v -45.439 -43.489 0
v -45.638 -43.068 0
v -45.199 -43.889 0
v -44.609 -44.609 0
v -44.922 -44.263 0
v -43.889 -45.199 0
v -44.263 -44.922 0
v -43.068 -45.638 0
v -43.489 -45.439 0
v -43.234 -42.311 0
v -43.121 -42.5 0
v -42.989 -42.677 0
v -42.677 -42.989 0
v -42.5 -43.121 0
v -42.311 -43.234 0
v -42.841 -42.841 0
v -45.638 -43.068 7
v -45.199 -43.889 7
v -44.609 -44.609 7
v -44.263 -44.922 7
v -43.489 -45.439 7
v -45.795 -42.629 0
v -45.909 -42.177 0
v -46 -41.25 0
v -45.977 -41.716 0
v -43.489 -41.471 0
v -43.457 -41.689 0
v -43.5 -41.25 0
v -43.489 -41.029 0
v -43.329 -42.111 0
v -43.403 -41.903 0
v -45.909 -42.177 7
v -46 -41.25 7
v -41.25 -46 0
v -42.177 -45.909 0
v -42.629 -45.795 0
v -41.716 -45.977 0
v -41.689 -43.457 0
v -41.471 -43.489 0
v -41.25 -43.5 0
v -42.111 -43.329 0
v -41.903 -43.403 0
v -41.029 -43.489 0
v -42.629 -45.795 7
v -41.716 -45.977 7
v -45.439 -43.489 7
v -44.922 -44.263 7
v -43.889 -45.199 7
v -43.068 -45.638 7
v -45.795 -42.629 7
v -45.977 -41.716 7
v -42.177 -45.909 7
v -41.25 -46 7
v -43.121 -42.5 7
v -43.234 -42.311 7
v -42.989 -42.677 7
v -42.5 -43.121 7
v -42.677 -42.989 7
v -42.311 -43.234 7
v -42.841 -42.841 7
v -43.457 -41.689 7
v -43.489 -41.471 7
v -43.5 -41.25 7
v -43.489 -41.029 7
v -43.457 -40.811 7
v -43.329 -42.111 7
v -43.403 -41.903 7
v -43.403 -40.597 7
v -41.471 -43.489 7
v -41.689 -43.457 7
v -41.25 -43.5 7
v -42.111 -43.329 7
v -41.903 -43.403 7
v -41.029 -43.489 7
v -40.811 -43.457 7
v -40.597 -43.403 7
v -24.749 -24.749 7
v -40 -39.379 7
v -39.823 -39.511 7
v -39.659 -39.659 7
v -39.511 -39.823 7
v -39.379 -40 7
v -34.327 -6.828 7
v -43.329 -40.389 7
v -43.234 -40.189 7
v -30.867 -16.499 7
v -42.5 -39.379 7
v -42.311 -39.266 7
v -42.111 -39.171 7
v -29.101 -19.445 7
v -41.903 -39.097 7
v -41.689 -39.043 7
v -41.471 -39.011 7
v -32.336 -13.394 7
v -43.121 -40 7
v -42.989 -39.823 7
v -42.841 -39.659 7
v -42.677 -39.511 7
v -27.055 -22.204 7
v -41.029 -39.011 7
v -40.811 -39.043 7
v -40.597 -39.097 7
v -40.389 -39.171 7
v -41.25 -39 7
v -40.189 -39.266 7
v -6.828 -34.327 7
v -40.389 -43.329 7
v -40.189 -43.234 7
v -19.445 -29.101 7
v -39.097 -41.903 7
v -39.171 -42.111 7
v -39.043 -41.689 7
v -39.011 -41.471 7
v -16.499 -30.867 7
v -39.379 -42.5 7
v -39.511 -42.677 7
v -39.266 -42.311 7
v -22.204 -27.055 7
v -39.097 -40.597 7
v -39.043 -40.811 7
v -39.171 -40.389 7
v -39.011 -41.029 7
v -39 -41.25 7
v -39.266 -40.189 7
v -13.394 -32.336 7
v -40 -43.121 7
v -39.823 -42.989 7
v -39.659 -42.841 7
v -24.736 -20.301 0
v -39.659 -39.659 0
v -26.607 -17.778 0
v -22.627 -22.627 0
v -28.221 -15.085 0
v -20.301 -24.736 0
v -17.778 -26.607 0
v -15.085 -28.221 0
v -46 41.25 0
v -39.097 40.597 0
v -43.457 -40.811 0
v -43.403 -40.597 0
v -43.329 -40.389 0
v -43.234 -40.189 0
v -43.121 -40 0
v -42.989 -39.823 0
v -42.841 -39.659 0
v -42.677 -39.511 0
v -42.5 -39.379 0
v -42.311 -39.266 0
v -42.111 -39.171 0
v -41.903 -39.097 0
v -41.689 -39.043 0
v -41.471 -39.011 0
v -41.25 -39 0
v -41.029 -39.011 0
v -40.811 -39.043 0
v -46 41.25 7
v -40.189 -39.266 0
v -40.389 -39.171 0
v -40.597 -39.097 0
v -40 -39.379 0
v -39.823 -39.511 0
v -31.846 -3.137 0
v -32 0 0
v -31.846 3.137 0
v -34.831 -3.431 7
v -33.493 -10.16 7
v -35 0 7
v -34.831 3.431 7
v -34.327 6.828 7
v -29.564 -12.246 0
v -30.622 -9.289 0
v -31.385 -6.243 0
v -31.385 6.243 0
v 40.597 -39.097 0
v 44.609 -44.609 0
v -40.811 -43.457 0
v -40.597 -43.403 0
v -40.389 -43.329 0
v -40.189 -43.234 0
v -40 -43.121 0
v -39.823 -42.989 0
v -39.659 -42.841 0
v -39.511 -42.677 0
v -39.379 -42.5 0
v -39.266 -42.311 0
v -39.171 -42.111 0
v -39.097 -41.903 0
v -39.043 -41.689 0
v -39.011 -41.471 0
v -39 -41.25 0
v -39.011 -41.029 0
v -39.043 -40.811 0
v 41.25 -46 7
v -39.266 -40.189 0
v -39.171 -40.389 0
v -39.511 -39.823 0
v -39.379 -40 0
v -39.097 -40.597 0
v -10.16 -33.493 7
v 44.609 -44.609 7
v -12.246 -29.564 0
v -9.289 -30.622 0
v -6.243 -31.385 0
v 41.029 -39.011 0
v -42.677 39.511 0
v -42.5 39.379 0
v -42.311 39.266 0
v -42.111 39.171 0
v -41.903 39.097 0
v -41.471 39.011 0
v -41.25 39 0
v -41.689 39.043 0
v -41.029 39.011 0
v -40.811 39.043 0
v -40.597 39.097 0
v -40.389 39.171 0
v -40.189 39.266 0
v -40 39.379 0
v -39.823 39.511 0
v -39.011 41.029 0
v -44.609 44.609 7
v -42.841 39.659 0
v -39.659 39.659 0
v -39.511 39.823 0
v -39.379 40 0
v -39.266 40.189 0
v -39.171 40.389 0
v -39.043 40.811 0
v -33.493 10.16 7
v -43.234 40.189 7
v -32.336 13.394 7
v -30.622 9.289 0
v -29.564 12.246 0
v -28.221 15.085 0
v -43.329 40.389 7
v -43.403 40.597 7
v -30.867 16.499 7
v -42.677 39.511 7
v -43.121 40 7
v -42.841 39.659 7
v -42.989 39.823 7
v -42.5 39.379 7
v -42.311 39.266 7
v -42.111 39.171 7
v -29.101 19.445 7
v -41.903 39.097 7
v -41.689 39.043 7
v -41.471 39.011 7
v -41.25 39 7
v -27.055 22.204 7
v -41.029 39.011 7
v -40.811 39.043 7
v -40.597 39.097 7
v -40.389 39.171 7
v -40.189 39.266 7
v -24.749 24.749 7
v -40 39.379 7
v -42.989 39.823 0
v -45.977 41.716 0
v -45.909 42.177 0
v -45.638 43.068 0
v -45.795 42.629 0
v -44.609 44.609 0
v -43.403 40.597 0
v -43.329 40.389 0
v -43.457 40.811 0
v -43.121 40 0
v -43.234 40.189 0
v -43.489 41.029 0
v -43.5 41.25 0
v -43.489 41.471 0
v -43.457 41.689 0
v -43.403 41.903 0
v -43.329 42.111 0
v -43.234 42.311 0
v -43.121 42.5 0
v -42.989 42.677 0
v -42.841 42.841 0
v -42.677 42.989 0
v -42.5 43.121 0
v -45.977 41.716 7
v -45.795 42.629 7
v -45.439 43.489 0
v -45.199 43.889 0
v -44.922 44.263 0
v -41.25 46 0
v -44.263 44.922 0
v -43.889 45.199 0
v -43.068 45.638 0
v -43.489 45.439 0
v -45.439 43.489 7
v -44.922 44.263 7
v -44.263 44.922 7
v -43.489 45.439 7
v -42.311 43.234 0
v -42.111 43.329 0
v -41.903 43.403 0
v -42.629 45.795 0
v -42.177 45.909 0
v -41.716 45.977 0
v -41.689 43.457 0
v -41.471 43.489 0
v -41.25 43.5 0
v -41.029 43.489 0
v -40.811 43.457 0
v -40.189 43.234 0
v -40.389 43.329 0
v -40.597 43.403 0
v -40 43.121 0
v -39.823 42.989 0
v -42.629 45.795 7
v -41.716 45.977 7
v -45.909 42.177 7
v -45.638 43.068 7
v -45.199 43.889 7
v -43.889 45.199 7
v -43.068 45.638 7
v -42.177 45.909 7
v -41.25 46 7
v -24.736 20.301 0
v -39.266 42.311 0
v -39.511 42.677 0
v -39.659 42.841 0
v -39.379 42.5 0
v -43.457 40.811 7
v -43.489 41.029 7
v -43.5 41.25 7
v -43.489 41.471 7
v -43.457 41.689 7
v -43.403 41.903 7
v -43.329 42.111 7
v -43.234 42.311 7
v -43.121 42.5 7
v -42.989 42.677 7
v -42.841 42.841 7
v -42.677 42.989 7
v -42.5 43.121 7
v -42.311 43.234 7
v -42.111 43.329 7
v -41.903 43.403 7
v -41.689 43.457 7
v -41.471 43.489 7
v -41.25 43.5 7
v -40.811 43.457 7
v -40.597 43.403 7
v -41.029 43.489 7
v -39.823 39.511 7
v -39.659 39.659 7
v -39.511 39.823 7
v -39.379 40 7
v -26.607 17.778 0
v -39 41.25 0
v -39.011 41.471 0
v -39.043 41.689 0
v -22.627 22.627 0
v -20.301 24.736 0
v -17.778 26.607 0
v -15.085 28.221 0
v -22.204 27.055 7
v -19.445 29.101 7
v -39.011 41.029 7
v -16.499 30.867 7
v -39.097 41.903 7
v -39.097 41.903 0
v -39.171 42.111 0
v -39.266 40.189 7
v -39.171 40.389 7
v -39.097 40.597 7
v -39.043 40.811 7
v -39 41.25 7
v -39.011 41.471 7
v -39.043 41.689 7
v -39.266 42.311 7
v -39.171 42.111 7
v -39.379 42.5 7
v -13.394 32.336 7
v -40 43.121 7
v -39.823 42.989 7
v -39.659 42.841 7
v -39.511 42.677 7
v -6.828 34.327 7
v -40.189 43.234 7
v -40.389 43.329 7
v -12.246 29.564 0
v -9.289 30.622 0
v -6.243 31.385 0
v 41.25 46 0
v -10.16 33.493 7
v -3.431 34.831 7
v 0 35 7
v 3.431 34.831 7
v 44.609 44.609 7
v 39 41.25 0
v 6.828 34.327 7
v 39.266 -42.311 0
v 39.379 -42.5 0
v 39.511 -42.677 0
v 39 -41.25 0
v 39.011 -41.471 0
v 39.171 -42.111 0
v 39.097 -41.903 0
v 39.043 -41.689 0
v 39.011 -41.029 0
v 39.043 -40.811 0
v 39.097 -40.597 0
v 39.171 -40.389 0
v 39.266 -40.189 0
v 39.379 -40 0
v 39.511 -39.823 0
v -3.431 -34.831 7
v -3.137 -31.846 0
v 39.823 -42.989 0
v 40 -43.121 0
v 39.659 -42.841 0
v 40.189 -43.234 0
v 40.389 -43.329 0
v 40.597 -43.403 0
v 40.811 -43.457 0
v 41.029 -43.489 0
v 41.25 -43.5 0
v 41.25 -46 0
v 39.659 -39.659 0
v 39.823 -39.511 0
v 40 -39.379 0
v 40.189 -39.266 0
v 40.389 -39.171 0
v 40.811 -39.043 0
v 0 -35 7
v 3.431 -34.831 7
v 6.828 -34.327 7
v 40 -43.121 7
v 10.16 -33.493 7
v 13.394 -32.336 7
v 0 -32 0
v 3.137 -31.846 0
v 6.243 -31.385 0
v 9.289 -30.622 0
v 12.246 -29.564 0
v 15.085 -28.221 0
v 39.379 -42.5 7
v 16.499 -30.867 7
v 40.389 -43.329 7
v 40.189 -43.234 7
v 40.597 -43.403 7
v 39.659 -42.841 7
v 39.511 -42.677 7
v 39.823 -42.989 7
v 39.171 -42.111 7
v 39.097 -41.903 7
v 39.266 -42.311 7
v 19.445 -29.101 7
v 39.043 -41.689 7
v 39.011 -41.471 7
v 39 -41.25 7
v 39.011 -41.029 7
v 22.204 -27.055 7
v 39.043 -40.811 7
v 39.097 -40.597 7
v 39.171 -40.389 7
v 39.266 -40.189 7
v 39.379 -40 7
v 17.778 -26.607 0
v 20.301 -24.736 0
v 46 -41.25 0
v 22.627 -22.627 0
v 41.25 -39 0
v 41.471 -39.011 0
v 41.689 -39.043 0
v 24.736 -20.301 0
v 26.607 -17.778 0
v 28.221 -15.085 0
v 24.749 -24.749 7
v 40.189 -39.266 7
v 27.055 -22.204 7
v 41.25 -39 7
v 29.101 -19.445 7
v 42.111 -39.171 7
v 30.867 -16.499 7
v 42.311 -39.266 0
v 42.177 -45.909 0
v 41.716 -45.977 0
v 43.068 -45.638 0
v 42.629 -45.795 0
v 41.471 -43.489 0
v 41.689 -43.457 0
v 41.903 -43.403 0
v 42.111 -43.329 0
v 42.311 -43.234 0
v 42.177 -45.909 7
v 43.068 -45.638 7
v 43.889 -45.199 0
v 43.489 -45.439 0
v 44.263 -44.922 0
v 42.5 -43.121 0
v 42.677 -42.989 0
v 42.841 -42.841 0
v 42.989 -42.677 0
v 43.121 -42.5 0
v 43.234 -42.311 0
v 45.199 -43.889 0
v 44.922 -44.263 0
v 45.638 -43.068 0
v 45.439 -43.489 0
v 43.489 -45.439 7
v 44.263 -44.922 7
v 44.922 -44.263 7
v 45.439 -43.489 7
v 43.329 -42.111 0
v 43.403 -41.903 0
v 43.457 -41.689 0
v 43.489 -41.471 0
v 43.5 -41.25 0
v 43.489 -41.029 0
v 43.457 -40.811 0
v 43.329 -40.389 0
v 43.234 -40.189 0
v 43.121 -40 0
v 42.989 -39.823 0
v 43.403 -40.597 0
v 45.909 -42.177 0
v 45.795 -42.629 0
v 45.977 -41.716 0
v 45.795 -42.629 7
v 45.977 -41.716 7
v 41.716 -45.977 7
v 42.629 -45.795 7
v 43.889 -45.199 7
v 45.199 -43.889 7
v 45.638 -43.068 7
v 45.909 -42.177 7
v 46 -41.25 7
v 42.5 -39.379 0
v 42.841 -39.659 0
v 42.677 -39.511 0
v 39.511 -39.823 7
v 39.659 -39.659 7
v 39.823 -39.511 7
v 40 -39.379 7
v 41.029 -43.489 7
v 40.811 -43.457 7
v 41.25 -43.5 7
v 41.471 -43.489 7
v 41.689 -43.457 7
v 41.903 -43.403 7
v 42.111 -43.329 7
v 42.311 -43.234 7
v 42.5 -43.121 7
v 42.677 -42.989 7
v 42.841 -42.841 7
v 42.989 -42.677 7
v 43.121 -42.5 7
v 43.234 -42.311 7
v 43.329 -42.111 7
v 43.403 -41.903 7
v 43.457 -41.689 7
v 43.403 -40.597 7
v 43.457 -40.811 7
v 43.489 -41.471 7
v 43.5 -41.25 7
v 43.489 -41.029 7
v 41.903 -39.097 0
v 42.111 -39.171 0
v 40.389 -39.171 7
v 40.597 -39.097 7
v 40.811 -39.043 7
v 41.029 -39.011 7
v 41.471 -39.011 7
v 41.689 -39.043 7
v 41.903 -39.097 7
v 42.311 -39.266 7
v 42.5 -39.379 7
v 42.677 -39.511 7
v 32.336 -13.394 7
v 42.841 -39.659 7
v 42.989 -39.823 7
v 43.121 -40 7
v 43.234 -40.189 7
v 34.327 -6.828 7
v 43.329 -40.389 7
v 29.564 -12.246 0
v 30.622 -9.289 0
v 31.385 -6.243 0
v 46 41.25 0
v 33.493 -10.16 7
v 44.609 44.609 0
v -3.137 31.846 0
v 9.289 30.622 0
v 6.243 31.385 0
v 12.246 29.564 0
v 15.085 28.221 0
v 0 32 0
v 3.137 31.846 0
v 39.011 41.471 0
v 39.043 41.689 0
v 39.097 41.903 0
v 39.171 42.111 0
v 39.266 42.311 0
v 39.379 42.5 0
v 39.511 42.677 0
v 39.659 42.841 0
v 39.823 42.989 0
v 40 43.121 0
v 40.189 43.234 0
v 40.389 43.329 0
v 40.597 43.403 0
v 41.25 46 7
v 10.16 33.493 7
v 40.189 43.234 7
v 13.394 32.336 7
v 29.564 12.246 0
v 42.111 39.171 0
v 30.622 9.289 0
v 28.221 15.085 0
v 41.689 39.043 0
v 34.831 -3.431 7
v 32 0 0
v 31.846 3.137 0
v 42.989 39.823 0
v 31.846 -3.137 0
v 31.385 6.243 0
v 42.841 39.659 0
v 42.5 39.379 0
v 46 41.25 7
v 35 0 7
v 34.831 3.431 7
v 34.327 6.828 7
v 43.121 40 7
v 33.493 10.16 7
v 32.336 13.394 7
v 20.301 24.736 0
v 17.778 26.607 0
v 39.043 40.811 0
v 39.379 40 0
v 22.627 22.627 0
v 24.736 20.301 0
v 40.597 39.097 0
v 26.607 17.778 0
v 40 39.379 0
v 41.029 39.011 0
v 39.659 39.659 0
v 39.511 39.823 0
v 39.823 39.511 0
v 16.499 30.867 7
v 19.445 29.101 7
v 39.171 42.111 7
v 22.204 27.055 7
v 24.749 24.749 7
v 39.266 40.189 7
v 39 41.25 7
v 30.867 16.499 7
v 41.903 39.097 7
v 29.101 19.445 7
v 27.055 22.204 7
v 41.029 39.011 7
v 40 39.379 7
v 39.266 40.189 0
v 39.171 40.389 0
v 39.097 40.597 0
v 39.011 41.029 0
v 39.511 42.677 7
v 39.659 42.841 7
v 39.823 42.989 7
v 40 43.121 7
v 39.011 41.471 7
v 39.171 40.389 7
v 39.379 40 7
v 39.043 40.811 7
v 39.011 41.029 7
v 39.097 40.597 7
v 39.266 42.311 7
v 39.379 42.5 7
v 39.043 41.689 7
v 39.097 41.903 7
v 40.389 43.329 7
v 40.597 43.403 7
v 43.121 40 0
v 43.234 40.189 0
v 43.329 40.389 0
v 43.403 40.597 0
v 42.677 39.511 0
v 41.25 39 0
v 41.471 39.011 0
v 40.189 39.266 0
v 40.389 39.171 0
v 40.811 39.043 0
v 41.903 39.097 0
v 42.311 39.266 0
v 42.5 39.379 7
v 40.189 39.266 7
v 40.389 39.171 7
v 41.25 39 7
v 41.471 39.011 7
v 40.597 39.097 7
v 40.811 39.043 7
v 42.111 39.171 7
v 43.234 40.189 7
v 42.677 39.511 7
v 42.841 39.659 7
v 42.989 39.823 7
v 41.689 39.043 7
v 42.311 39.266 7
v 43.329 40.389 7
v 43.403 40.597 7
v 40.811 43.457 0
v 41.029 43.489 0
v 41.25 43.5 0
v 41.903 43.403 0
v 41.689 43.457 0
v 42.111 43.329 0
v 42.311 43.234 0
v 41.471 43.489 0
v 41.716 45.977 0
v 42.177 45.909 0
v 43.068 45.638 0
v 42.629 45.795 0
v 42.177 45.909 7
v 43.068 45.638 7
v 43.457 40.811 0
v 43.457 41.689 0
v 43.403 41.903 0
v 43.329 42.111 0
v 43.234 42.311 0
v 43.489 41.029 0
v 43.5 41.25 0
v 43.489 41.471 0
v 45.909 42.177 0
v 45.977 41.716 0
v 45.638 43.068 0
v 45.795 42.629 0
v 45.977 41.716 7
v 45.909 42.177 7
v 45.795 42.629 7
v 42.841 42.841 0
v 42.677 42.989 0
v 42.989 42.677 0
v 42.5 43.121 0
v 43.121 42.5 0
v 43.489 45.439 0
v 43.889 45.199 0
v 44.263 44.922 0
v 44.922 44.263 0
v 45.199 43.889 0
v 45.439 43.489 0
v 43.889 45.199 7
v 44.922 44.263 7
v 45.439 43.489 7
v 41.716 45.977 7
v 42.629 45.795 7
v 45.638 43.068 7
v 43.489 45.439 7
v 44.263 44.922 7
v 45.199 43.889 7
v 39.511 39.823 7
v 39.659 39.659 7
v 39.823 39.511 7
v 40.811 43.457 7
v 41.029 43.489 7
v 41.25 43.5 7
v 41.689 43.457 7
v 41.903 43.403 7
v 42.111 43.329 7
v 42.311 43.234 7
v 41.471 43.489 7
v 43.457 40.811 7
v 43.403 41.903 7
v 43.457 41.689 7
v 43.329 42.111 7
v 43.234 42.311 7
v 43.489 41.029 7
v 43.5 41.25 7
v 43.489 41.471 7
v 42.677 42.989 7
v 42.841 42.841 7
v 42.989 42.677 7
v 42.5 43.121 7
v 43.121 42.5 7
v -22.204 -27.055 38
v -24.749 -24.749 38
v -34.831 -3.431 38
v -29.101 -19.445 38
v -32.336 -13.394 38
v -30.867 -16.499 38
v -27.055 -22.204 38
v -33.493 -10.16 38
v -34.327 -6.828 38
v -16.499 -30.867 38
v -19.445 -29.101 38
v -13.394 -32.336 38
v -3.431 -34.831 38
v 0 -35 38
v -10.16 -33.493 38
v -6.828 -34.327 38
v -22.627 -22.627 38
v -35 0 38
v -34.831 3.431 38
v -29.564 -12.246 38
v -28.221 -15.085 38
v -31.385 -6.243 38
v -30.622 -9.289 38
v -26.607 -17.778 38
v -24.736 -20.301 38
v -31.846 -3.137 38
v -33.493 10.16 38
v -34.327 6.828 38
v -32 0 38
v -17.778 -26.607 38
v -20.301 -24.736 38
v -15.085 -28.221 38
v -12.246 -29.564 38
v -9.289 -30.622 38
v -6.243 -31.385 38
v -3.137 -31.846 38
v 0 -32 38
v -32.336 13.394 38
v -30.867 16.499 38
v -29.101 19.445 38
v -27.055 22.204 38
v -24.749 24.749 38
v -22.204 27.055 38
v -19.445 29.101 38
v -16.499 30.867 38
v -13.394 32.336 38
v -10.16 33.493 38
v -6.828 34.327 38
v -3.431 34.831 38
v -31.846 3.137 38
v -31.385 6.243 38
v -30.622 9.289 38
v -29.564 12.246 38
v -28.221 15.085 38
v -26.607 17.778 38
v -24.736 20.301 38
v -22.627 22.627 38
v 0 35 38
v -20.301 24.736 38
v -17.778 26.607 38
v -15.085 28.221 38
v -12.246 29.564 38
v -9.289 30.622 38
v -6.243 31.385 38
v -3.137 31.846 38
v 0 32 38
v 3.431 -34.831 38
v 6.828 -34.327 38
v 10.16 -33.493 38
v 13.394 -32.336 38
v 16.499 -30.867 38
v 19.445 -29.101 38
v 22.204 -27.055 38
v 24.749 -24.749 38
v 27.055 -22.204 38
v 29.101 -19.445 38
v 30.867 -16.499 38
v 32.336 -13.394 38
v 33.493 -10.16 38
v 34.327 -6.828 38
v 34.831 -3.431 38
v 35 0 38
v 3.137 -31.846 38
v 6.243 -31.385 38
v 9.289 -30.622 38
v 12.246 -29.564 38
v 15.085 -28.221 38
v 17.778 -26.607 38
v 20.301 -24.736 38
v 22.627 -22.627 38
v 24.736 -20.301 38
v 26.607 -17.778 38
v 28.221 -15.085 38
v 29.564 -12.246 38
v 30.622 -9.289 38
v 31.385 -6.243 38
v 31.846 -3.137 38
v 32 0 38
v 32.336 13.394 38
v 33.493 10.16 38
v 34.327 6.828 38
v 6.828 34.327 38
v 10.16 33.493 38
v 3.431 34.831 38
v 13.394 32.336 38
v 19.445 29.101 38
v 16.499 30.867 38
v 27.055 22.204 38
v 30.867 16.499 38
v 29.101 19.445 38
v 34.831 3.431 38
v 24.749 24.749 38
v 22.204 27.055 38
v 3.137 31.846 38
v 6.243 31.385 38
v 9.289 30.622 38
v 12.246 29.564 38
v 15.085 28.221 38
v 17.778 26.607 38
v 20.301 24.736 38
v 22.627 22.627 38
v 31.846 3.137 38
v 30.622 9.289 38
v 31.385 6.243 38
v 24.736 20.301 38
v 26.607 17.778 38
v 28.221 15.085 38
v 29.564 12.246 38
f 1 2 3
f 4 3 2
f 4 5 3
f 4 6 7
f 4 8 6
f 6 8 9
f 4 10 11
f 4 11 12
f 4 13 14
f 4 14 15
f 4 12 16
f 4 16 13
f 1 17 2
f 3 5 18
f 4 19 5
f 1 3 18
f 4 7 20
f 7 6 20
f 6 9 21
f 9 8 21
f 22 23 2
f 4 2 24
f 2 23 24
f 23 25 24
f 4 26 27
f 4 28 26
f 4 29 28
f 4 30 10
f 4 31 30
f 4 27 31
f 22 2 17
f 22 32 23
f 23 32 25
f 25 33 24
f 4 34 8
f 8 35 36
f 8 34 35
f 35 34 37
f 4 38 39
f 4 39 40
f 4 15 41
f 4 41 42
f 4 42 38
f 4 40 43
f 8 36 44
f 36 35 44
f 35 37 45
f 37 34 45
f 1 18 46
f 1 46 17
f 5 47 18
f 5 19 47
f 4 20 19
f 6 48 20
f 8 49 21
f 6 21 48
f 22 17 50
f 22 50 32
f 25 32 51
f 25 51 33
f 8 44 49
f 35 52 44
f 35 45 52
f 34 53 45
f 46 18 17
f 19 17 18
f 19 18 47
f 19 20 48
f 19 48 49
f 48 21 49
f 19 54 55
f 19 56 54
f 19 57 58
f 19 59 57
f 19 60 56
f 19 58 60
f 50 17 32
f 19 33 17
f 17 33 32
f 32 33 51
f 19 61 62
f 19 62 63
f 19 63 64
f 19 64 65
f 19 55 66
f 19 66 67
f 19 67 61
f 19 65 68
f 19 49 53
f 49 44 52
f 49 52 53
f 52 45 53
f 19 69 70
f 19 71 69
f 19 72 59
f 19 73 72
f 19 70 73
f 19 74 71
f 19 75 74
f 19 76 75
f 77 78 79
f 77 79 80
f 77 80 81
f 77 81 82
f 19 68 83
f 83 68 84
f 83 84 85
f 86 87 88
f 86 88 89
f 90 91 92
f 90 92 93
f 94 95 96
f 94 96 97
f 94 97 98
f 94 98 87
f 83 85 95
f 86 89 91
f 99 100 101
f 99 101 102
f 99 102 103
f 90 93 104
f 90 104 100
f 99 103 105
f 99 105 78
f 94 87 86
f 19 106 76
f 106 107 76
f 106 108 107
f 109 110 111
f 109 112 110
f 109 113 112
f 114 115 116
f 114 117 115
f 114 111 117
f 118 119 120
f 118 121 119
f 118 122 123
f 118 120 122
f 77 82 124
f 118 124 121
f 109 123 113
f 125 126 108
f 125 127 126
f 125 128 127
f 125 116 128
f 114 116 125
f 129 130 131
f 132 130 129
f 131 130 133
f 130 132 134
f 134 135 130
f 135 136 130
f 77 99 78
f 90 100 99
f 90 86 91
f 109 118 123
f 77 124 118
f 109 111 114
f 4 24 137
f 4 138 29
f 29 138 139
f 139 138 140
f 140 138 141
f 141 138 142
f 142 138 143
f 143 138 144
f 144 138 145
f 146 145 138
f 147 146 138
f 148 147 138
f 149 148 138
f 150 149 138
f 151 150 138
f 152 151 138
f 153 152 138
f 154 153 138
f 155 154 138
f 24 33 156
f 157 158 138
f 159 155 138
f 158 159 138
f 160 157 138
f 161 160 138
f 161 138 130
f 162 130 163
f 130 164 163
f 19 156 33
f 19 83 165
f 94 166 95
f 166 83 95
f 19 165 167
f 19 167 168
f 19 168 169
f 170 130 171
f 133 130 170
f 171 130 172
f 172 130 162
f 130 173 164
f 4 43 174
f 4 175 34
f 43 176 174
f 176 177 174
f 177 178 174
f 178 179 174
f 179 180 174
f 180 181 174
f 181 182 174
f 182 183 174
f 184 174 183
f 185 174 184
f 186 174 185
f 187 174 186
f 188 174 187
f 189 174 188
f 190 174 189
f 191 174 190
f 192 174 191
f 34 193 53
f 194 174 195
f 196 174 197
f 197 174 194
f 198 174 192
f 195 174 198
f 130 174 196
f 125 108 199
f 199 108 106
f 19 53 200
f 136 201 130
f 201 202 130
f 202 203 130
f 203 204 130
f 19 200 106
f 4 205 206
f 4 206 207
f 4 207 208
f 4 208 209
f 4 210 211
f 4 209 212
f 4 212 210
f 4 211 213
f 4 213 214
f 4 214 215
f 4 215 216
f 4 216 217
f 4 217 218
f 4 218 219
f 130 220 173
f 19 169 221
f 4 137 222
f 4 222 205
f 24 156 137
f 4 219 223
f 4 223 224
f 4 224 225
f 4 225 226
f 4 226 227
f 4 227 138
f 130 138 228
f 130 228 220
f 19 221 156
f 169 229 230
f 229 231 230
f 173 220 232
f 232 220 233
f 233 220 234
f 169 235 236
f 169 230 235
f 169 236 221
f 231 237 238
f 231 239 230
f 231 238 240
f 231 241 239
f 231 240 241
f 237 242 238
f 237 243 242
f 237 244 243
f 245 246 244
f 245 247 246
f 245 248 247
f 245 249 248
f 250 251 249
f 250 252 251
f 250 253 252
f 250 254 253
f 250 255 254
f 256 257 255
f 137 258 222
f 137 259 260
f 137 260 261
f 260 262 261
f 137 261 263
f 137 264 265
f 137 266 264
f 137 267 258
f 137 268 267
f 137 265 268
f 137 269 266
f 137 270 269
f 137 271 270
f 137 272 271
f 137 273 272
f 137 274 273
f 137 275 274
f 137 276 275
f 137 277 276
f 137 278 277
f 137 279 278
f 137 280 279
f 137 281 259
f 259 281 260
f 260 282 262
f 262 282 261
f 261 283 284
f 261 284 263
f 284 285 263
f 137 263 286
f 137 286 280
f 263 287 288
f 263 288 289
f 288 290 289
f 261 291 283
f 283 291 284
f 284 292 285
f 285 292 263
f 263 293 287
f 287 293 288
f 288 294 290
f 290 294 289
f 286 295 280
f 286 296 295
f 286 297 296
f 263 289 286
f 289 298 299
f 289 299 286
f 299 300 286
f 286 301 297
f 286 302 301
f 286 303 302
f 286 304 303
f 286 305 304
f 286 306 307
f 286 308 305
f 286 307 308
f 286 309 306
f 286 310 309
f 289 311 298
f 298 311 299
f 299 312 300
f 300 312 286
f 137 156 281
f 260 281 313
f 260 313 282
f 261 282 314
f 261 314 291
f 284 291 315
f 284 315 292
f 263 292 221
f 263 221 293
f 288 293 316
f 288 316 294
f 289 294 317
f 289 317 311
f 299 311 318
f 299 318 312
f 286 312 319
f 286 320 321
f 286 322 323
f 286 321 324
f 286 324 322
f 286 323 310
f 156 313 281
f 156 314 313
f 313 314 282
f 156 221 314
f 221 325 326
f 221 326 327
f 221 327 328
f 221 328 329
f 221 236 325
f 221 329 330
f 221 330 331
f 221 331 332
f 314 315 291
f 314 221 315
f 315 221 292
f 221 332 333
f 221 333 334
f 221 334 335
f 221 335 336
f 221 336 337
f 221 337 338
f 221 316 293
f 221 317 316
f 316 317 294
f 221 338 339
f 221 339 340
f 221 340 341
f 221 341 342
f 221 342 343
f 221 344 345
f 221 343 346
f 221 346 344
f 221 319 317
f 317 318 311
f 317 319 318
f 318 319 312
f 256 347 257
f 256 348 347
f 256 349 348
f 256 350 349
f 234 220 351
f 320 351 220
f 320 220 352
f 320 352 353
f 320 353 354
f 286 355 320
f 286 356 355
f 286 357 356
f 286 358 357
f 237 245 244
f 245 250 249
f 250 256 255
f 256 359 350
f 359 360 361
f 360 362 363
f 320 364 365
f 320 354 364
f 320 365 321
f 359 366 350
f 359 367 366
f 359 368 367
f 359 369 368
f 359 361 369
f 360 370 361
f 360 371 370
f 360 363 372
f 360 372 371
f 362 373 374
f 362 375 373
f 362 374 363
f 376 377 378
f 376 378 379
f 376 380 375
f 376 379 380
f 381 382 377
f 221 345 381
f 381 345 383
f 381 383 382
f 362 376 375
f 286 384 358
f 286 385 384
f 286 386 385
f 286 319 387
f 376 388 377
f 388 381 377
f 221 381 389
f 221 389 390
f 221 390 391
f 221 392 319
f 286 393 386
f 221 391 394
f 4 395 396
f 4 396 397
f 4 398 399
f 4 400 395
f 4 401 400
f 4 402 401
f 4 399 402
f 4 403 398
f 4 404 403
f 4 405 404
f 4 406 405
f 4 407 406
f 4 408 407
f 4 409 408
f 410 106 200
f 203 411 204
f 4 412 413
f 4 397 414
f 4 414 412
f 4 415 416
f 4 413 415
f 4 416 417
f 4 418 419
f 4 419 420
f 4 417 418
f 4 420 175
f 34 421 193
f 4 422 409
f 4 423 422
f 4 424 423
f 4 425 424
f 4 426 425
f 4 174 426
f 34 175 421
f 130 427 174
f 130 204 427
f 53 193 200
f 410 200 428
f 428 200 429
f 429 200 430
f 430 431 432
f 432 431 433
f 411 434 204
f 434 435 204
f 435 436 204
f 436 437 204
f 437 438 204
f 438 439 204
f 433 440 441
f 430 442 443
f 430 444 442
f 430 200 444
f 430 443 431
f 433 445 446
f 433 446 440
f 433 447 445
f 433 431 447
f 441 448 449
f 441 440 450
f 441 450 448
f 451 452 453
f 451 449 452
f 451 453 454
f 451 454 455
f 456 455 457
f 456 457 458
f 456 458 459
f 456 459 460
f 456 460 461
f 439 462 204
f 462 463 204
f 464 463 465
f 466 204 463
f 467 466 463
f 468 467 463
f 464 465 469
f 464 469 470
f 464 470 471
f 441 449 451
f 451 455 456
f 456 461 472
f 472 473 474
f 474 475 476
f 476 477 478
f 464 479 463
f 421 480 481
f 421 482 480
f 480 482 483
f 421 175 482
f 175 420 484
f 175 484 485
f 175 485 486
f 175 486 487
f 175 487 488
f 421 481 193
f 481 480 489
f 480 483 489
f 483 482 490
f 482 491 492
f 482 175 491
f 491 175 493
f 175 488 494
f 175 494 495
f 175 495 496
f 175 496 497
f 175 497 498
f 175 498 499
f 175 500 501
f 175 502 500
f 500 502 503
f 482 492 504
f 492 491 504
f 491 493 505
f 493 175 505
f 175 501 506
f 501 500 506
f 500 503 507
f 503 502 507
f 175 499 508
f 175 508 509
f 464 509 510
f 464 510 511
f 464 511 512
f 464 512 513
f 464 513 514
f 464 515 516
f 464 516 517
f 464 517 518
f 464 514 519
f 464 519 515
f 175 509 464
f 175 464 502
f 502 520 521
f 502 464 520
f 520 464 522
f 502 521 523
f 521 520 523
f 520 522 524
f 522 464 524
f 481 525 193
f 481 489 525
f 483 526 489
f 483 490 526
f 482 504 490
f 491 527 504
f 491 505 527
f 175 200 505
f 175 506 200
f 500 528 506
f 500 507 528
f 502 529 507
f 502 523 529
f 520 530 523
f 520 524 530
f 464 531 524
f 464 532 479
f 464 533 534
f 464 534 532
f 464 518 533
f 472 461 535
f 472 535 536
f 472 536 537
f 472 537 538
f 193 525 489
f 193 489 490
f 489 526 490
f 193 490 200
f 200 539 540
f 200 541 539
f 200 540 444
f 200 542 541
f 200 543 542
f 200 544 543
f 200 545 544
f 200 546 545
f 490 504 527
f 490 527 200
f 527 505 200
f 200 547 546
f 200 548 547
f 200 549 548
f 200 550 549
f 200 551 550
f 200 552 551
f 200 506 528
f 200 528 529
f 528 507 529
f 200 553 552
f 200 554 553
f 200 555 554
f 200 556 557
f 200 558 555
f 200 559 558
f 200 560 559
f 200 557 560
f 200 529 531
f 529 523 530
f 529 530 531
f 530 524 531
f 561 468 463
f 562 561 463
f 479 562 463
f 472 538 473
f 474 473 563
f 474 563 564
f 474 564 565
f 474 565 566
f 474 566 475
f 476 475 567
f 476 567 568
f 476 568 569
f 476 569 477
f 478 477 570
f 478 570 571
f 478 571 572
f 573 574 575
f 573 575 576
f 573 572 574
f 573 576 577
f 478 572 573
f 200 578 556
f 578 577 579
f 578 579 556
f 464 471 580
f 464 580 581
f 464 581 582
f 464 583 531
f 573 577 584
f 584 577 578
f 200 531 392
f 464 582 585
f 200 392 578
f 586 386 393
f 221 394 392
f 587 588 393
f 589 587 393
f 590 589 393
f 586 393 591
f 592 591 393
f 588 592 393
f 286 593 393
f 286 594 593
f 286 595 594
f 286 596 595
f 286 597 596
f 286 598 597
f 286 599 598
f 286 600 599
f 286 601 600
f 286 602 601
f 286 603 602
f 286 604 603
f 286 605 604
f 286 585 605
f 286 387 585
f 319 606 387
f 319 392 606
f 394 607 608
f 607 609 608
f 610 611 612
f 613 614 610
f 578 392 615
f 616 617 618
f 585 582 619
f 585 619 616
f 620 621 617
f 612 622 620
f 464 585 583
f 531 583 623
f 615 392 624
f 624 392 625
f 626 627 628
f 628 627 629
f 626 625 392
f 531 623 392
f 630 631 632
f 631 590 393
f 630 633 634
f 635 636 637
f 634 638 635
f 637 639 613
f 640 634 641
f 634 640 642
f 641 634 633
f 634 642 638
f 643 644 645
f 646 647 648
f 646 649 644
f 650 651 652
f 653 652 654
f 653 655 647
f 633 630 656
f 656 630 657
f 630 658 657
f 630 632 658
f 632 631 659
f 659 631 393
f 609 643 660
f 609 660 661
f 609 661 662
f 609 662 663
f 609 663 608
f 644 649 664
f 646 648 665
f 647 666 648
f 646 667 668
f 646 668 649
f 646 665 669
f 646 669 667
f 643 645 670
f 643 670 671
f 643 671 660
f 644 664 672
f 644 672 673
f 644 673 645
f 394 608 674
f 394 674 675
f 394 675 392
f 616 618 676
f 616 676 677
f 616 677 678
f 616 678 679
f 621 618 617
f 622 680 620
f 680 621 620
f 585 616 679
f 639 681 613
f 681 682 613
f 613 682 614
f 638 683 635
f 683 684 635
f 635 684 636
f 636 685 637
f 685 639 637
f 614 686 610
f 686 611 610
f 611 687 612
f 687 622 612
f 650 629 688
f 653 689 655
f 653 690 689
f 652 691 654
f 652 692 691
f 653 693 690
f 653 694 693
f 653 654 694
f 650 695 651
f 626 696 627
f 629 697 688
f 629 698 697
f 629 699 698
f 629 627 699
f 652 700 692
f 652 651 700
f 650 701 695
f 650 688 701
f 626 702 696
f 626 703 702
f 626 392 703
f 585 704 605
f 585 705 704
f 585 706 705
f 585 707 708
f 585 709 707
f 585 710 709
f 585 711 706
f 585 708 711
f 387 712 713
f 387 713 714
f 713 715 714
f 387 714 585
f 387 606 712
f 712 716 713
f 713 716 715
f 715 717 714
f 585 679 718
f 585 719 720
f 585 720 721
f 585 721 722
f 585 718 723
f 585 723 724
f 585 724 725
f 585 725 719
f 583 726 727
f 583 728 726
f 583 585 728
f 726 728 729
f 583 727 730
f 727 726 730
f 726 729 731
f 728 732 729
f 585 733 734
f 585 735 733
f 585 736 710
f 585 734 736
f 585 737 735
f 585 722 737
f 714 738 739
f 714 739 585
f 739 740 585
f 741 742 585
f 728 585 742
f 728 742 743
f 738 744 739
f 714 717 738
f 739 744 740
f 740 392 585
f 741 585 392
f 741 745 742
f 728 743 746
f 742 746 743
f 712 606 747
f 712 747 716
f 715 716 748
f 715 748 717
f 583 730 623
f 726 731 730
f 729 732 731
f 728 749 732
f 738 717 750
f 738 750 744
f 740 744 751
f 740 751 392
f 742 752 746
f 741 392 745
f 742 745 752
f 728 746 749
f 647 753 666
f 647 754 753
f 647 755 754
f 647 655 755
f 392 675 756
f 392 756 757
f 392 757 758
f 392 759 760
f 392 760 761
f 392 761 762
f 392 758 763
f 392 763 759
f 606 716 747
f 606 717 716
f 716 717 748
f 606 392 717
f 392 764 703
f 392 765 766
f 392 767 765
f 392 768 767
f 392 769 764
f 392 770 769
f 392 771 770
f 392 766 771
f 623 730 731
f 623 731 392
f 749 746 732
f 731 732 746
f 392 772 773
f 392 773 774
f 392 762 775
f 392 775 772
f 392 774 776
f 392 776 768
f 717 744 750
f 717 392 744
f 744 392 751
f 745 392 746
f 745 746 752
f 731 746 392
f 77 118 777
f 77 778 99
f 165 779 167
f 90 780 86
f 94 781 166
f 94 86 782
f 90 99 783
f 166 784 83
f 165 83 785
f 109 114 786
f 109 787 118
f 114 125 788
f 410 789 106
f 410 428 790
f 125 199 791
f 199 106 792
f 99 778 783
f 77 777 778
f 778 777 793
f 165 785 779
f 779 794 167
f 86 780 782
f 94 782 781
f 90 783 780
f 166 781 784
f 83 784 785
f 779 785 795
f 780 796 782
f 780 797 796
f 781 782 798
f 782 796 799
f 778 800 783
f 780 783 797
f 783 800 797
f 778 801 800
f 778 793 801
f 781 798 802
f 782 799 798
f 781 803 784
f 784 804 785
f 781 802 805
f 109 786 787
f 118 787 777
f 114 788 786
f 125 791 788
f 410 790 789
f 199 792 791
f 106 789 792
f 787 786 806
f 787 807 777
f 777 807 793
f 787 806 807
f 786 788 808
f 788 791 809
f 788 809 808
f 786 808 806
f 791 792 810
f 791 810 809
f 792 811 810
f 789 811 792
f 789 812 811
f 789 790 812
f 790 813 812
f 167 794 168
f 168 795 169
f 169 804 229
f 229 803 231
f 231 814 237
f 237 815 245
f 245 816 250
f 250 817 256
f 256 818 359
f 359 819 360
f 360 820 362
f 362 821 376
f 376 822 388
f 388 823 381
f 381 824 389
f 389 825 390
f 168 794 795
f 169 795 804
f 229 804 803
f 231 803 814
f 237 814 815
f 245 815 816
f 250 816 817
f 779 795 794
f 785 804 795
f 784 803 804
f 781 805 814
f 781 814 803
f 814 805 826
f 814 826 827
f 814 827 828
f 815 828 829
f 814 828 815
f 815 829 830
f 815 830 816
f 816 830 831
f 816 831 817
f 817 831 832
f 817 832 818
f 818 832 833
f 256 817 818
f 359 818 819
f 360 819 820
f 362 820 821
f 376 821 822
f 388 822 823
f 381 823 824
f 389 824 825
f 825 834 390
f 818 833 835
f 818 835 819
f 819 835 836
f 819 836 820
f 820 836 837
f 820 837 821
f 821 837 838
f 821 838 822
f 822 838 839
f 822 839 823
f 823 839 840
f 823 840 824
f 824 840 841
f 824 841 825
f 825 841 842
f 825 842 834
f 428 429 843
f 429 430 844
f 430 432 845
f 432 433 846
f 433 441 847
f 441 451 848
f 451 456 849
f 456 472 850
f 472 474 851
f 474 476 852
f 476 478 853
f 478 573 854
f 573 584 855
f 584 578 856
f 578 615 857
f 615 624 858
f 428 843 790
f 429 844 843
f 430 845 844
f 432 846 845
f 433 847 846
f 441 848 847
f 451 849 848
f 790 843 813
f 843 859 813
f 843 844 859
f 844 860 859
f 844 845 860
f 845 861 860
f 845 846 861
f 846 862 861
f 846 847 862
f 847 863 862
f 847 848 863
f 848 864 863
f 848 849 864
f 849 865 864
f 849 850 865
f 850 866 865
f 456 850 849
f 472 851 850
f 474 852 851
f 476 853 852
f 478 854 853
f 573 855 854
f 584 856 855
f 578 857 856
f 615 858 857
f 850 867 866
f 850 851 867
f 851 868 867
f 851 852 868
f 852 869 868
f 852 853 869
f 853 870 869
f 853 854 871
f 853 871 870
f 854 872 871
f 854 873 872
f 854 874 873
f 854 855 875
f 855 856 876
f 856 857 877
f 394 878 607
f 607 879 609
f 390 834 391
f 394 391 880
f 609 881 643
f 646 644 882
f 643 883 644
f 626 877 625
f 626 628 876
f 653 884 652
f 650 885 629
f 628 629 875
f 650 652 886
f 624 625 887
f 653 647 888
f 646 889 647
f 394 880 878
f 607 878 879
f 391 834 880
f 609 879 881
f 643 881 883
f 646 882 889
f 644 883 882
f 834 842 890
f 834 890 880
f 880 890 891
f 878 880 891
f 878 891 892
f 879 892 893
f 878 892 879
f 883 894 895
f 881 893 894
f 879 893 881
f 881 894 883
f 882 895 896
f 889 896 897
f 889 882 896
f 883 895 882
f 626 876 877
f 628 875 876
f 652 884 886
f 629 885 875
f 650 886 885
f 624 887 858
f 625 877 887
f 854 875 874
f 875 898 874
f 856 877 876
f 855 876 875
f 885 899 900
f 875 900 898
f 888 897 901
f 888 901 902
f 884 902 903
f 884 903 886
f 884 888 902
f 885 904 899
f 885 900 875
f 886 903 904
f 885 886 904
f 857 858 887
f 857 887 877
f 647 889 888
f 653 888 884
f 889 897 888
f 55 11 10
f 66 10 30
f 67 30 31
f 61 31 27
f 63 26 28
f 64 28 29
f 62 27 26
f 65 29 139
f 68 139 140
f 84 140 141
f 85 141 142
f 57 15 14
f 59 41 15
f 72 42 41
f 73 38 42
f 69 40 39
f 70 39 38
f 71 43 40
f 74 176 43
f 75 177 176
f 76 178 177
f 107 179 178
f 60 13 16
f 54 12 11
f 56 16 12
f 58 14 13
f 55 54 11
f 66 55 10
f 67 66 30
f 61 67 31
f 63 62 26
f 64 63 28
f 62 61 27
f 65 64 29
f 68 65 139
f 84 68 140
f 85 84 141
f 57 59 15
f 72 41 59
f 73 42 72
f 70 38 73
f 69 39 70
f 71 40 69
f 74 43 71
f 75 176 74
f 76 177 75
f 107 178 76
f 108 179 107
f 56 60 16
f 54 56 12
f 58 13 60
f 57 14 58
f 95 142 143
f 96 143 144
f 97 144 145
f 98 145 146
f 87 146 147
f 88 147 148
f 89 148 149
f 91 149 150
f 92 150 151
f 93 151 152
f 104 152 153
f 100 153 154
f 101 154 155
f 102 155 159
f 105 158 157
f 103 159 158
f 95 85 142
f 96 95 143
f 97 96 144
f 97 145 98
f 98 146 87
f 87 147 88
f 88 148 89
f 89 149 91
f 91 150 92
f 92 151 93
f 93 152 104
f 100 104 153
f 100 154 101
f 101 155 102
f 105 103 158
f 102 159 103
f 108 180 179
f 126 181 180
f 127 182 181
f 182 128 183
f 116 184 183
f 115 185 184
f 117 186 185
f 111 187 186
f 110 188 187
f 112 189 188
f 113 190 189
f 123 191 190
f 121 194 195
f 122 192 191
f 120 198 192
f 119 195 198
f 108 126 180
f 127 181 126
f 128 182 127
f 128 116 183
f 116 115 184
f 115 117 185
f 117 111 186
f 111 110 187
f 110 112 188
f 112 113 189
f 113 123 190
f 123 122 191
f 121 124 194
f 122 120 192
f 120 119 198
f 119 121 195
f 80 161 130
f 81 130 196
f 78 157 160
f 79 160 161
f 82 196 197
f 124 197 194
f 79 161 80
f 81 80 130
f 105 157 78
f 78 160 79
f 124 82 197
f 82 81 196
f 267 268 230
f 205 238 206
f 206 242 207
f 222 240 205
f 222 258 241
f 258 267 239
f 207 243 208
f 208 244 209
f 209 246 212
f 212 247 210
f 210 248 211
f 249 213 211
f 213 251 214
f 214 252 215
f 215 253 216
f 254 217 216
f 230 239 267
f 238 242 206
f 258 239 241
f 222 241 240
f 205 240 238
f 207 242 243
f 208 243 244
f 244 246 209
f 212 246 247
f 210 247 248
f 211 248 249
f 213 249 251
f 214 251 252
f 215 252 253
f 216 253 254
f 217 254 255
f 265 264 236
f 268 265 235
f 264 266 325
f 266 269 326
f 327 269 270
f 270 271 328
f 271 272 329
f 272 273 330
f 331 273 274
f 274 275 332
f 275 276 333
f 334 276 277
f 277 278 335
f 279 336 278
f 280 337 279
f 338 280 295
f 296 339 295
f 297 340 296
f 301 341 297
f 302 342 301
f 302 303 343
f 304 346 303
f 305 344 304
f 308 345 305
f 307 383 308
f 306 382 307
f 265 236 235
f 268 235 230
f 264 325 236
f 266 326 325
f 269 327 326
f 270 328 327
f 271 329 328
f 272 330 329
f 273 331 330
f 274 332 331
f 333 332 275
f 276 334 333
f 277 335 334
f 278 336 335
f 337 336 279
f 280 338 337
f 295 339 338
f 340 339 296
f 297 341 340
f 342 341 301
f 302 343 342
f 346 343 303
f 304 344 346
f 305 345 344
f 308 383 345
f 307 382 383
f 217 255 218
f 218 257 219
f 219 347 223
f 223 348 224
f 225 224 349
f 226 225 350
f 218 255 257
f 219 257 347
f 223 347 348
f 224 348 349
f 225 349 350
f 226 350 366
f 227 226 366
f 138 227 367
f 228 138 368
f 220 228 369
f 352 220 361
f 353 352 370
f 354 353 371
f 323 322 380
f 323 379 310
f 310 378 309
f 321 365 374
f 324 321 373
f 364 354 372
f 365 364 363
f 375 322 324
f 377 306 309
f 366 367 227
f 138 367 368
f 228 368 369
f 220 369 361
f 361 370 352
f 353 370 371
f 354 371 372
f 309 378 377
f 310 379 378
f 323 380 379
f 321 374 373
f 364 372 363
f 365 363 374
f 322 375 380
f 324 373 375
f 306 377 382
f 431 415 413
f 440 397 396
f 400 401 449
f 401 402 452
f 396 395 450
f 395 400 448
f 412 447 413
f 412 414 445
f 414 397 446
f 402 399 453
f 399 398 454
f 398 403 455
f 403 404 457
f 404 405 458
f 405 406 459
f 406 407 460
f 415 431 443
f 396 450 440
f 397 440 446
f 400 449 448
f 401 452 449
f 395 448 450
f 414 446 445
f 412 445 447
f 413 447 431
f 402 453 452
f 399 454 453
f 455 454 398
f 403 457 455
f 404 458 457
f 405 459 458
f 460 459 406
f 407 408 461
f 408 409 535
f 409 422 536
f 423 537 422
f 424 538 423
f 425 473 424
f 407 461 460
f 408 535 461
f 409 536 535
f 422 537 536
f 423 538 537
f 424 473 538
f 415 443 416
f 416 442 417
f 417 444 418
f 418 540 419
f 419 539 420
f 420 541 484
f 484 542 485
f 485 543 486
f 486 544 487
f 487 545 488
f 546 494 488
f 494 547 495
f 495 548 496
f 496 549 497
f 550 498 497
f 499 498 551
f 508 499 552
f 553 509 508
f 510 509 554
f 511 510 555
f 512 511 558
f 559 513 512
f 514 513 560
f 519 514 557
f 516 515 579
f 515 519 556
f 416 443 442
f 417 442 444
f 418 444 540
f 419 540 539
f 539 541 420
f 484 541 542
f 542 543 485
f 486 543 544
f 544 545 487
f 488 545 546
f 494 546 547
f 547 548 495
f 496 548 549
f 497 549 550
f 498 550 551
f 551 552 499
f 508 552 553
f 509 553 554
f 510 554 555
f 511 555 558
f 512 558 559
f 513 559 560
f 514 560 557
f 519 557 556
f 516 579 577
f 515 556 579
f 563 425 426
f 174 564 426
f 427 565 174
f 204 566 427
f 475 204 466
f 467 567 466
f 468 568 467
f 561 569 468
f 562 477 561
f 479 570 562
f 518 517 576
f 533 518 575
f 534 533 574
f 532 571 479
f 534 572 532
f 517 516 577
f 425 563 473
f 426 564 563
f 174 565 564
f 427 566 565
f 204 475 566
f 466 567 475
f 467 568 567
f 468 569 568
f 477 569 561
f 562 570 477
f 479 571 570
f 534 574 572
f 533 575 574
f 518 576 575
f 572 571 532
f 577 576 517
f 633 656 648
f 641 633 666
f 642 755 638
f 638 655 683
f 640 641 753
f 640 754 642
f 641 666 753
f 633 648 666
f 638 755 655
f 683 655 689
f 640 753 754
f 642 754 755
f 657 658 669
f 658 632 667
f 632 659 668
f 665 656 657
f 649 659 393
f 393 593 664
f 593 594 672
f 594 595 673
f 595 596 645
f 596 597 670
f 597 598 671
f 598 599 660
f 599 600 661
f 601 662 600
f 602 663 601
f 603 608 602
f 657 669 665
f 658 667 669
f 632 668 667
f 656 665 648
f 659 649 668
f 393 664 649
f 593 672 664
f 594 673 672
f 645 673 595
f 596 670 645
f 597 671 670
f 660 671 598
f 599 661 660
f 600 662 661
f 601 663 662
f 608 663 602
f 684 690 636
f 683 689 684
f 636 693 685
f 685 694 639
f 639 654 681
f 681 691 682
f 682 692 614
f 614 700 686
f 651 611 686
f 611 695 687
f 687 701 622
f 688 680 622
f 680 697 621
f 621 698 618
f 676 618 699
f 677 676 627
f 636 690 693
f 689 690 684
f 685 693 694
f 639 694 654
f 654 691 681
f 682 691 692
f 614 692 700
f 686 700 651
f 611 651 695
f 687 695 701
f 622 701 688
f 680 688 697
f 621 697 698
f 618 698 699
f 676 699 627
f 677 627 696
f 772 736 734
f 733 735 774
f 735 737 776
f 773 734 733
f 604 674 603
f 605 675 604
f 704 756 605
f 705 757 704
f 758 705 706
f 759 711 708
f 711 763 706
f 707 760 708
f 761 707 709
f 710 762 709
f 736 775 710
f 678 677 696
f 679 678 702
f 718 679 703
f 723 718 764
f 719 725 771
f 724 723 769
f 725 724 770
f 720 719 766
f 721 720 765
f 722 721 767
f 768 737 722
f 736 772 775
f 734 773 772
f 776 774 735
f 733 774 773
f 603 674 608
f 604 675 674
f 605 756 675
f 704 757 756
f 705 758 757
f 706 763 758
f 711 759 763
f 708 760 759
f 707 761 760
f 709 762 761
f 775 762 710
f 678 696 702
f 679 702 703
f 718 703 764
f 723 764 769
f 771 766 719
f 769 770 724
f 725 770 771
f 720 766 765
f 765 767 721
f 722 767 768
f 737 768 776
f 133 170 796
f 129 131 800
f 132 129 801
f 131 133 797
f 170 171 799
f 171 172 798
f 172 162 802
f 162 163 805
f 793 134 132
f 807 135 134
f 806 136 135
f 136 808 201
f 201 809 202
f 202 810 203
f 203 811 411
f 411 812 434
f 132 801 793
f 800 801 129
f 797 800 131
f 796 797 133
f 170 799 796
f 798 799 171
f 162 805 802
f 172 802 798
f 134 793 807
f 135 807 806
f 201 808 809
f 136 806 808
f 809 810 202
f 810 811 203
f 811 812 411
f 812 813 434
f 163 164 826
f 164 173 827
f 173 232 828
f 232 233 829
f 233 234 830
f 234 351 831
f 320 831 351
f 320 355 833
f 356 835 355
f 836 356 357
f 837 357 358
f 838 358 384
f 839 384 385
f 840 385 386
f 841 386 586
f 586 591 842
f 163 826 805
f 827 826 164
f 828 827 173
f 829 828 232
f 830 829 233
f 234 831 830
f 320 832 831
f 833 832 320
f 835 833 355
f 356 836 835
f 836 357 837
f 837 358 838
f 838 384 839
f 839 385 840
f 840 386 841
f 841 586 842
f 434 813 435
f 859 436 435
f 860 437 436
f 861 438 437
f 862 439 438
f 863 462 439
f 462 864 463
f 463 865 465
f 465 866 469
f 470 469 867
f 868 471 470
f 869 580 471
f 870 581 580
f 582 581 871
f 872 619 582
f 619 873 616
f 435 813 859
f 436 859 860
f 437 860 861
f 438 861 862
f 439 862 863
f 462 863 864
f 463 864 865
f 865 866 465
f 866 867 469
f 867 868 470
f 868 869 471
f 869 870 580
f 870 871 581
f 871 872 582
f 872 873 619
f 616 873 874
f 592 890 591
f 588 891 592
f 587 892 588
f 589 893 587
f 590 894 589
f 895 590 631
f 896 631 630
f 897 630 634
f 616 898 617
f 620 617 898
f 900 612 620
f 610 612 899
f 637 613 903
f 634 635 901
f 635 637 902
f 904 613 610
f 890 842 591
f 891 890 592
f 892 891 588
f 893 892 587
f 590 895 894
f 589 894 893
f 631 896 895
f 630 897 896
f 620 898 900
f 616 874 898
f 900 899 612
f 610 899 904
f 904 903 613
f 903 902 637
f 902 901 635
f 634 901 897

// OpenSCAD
// file: fan_92x92x38.scad
// STEP file downloaded from https://grabcad.com/library/kare-aksiyel-fan-square-axial-fan-1/details?folder_id=14049389

module fan_92x92x38() {
  translate([0, 0, 38.5 / 2])
    rotate([180, 0, 0])
      import("fan_92x92x38.stl");
}

fan_92x92x38();
// file: parameters.scad
$fn = 64;

shrink_factor = 0.994; // I forgot to calibrate my ASA printer, so I'm using this factor to shrink the model after the fact

h = 70.3; // cell max height
d = 21.5 * shrink_factor; // cell max diameter

available_y = 19.5 * 25.4;

aluminum_thickness = 0.04 * 25.4; // 5052 H32 Aluminum for the case
case_dim_x = 137; // external dimensions, must be 137 to match the EIG battery box
case_dim_y = 228; // 235 is the max, can be smaller
case_dim_z = 355; // 

external_walls = 3; // acrylic

base_plate_dim_x = case_dim_x - 2 * external_walls;
base_plate_dim_y = case_dim_y - 2 * external_walls;

cell_isolation = 1 * shrink_factor; // minimum separation between cells not in parallel

plate_disk_dia = 14;
copper_width = 10;
copper_length = 9.8 * d;

nickel_width = 8;
nickel_length = 5.8 * d; // length of the nickel strip to connect 6 cells

plate_slot_length = 8;
plate_slot_width = 0.7;
copper_plate_thickness = 0.15;
nickel_plate_thickness = 0.15;
strips_pocket_height = 1;

plates_thickness = copper_plate_thickness + nickel_plate_thickness;

bulkhead_thickness = 20;

strips_clearance = 0.5;
holder_pocket_height = 5;
holder_walls = 0.5;

exploded = $t * 50;

inlet_stack_height = 20;
outlet_walls = 3;

m3_insert_od = 4.6; // 5mm OD minus some plastic to melt
m3_insert_length = 4 + 4; // 4 mm more than the insert length

m4_insert_od = 5.25; // this is the diameter of the hole, it must be smaller than the insert’s maximum OD
m4_insert_length = 8; // 2 mm more than the insert length

cell_holder_stack_height = 0.3;

strips_insulator_stack_height = 1.2;

module_60_height = h + cell_holder_stack_height * 2 + strips_insulator_stack_height * 2 + 7 * exploded;

large_spacer_stack_height = 7;

module_120_height = module_60_height * 2 + large_spacer_stack_height + exploded;

module_240_height = module_120_height * 2 + large_spacer_stack_height * 3 + exploded;

inlet_walls = 3;

ring_terminal_cutout_depth = 3;
busbar_cutout_depth = 3;
busbar_thickness = 1;
// main file
include <parameters.scad>;
use <fan_92x92x38.scad>;

show_fan = false;

OD = 70;
ID = OD - 2 * inlet_walls;

module printer_exhaust() {
  difference() {
    union() {
      hull() {
        for (x = [-0.5, 0.5], y = [-0.5, 0.5]) {
          translate([x * 82.5, y * 82.5, 0])
            cylinder(d=9.5, h=7, center=false);
        }
      }

      cylinder(d=OD, h=38);
    }
    cylinder(d=ID, h=200, center=true);
    for (x = [-0.5, 0.5], y = [-0.5, 0.5]) {
      translate([x * 82.5, y * 82.5, 0])
        cylinder(d=4.5, h=100, center=true);
    }
  }
  if (show_fan) {
    translate([0, 0, -38])
      fan_92x92x38();
  }
}

module print_exhause_modifier() {
  for (x = [-0.5, 0.5], y = [-0.5, 0.5]) {
    translate([x * 82.5, y * 82.5, 0])
      cylinder(d=9.5, h=10);
  }
}

printer_exhaust();
%print_exhause_modifier();

// window opening: 46" x 1"
